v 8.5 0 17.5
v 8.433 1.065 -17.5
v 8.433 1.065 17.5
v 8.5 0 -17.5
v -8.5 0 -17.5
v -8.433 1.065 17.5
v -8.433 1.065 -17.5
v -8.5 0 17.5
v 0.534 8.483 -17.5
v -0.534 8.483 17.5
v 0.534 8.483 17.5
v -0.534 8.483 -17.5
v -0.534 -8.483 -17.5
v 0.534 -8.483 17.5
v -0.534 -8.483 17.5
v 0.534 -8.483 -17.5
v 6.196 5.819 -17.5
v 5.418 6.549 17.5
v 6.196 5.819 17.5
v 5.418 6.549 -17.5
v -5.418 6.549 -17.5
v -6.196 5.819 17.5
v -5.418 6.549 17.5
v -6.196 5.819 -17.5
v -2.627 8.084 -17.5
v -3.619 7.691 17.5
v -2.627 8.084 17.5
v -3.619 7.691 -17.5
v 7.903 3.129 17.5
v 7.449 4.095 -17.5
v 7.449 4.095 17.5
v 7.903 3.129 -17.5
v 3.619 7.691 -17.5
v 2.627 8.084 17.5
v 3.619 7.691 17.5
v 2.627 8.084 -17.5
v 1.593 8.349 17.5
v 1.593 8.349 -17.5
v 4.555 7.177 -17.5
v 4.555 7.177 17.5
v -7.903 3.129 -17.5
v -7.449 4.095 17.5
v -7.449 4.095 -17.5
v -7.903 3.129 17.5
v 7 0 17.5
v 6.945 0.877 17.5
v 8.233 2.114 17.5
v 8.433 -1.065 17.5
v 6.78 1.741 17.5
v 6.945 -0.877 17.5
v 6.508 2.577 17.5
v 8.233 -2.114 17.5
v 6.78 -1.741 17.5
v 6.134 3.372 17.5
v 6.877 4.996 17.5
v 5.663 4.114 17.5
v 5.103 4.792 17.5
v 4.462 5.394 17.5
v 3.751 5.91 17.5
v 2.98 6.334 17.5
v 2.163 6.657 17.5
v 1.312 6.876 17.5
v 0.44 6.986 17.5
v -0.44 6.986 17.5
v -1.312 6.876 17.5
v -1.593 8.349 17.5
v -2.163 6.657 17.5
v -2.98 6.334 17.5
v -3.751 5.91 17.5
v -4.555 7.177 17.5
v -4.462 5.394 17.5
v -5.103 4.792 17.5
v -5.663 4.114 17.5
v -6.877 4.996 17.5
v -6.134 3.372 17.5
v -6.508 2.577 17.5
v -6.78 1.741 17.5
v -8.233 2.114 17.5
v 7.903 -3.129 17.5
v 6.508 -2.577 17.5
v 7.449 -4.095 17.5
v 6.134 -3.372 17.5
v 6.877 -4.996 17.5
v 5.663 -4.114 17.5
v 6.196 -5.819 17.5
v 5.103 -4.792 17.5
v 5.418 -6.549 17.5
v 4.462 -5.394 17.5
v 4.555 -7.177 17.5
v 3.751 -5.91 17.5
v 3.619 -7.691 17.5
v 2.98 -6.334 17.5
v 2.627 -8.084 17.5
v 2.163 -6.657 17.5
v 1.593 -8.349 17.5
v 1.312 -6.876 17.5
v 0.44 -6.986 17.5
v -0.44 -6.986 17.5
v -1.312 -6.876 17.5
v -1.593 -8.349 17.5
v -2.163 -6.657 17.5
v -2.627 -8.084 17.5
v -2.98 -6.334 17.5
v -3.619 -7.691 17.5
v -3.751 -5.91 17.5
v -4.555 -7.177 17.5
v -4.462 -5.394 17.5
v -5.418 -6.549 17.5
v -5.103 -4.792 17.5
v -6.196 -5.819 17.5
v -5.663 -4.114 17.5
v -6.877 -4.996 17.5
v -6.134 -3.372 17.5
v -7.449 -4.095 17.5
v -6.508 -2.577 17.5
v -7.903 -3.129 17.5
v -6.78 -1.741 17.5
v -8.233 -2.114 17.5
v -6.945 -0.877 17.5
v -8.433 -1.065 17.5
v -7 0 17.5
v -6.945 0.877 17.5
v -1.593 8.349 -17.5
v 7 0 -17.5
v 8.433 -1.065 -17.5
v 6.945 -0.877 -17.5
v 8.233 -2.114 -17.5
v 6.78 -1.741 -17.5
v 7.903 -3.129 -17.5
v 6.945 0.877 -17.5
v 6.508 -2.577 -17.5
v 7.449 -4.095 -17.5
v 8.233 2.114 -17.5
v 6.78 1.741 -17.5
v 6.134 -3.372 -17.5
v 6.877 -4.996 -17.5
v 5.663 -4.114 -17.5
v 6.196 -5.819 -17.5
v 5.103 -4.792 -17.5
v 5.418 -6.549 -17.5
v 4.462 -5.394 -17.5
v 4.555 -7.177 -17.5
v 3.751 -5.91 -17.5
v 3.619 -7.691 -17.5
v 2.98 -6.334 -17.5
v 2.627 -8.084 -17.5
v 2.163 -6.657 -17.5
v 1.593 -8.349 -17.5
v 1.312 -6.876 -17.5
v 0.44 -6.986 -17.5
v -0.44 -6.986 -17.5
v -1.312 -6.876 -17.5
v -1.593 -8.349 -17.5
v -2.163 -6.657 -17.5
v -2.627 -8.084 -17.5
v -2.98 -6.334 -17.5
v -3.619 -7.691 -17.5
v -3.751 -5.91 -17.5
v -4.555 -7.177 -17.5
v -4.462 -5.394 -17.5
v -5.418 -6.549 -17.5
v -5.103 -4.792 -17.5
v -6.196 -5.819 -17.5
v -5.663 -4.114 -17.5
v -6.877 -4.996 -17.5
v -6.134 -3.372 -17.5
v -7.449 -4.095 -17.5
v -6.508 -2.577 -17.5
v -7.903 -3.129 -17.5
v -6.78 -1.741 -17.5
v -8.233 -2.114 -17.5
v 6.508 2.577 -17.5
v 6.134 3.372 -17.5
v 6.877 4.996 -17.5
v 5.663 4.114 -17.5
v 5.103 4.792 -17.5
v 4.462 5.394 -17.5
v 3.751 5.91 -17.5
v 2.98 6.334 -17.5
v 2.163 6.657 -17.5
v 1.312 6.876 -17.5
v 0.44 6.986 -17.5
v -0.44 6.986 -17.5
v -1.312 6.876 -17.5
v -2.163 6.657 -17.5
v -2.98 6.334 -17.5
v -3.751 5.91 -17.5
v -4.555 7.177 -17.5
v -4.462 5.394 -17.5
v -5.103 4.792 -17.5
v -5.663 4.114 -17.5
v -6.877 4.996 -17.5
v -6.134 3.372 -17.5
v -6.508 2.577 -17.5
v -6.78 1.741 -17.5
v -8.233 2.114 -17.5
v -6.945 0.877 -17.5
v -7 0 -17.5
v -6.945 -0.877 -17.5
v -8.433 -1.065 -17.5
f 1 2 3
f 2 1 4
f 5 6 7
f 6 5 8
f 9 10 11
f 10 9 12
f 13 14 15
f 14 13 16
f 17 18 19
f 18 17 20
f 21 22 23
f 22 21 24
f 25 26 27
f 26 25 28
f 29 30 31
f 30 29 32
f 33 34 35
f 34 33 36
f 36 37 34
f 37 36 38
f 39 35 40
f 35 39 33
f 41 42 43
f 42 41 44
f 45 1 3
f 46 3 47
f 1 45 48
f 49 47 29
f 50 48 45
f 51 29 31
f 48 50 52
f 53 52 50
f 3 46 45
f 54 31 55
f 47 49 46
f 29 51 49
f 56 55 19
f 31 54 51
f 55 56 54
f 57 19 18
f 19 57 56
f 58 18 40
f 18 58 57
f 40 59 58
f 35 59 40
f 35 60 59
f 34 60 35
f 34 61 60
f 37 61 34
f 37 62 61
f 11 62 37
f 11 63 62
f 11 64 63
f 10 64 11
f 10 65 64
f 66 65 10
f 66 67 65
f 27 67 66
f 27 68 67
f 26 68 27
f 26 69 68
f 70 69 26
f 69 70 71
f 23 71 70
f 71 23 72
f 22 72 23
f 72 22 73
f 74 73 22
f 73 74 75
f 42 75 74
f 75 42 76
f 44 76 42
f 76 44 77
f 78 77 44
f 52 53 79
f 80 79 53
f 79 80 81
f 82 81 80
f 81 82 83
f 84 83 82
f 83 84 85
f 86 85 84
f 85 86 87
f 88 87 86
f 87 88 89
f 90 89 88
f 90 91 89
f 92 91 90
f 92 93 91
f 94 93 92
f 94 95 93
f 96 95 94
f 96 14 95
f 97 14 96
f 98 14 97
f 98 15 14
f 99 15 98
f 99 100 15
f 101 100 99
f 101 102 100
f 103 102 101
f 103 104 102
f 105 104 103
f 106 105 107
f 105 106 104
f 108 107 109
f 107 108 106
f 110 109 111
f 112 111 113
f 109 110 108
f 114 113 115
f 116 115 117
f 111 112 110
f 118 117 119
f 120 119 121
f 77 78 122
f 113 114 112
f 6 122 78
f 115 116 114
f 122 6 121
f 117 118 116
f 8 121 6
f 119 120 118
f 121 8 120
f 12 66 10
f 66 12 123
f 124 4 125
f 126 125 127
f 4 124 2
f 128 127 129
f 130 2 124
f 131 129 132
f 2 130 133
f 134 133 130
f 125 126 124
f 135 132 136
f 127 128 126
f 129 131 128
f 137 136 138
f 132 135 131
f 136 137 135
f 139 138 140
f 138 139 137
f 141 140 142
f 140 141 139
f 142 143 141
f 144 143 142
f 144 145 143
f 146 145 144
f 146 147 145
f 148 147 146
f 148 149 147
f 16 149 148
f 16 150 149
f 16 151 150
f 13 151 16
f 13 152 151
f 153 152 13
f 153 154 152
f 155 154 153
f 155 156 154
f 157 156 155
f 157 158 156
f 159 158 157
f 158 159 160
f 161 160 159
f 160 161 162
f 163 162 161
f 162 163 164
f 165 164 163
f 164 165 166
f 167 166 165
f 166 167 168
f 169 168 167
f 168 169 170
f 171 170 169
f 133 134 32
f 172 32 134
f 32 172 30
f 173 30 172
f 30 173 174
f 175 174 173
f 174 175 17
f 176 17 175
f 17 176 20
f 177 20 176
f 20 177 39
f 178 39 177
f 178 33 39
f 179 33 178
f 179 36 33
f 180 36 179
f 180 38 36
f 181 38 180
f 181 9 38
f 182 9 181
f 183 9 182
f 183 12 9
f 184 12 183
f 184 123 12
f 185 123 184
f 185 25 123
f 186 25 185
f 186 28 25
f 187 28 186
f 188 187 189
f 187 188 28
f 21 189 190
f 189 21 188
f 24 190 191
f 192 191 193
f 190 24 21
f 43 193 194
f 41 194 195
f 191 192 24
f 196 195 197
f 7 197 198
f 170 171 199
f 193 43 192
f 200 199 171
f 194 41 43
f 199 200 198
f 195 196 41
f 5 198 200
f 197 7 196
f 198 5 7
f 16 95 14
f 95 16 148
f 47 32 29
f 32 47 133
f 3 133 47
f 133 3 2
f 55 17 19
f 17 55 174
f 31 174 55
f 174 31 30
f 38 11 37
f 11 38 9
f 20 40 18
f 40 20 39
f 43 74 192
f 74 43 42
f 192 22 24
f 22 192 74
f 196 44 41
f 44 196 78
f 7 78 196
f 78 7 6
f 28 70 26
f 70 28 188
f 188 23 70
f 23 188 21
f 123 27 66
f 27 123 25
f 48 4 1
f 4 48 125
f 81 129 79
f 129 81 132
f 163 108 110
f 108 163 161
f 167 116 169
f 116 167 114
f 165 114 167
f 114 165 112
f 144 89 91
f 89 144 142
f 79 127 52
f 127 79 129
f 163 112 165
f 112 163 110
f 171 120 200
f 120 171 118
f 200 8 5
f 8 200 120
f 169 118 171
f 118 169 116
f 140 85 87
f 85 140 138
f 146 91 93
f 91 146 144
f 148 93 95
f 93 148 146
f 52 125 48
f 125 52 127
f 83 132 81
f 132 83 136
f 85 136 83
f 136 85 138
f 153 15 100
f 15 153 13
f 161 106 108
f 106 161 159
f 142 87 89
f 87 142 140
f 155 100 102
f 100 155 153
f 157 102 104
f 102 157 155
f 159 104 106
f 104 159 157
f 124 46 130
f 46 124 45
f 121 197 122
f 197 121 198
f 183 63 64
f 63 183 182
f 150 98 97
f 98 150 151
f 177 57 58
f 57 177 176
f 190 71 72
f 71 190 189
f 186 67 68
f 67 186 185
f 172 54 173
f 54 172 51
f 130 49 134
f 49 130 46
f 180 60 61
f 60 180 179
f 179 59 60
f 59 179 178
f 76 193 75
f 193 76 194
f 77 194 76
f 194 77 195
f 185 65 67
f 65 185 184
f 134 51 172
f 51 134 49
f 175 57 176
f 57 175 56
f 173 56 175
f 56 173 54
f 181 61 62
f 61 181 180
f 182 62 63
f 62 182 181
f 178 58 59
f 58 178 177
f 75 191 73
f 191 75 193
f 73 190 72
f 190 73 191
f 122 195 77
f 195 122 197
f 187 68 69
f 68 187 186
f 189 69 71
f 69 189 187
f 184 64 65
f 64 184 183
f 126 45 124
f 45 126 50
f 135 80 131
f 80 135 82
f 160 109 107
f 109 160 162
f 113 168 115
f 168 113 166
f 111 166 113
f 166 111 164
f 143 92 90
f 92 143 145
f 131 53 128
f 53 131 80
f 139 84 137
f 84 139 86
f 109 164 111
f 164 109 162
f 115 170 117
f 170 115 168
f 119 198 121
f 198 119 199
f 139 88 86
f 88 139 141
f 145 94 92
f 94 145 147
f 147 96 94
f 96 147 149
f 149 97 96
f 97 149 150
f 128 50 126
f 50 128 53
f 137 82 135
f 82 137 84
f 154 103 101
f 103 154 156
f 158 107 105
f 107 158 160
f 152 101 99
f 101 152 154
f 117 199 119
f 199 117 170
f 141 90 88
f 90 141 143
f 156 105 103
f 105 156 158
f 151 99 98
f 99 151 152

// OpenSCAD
$fn = 50;


difference() {
	union() {
		translate(v = [0, 0, -17.5000000000]) {
			cylinder(h = 35, r = 8.5000000000);
		}
	}
	union() {
		translate(v = [0, 0, -100.0000000000]) {
			cylinder(h = 200, r = 7);
		}
	}
}
